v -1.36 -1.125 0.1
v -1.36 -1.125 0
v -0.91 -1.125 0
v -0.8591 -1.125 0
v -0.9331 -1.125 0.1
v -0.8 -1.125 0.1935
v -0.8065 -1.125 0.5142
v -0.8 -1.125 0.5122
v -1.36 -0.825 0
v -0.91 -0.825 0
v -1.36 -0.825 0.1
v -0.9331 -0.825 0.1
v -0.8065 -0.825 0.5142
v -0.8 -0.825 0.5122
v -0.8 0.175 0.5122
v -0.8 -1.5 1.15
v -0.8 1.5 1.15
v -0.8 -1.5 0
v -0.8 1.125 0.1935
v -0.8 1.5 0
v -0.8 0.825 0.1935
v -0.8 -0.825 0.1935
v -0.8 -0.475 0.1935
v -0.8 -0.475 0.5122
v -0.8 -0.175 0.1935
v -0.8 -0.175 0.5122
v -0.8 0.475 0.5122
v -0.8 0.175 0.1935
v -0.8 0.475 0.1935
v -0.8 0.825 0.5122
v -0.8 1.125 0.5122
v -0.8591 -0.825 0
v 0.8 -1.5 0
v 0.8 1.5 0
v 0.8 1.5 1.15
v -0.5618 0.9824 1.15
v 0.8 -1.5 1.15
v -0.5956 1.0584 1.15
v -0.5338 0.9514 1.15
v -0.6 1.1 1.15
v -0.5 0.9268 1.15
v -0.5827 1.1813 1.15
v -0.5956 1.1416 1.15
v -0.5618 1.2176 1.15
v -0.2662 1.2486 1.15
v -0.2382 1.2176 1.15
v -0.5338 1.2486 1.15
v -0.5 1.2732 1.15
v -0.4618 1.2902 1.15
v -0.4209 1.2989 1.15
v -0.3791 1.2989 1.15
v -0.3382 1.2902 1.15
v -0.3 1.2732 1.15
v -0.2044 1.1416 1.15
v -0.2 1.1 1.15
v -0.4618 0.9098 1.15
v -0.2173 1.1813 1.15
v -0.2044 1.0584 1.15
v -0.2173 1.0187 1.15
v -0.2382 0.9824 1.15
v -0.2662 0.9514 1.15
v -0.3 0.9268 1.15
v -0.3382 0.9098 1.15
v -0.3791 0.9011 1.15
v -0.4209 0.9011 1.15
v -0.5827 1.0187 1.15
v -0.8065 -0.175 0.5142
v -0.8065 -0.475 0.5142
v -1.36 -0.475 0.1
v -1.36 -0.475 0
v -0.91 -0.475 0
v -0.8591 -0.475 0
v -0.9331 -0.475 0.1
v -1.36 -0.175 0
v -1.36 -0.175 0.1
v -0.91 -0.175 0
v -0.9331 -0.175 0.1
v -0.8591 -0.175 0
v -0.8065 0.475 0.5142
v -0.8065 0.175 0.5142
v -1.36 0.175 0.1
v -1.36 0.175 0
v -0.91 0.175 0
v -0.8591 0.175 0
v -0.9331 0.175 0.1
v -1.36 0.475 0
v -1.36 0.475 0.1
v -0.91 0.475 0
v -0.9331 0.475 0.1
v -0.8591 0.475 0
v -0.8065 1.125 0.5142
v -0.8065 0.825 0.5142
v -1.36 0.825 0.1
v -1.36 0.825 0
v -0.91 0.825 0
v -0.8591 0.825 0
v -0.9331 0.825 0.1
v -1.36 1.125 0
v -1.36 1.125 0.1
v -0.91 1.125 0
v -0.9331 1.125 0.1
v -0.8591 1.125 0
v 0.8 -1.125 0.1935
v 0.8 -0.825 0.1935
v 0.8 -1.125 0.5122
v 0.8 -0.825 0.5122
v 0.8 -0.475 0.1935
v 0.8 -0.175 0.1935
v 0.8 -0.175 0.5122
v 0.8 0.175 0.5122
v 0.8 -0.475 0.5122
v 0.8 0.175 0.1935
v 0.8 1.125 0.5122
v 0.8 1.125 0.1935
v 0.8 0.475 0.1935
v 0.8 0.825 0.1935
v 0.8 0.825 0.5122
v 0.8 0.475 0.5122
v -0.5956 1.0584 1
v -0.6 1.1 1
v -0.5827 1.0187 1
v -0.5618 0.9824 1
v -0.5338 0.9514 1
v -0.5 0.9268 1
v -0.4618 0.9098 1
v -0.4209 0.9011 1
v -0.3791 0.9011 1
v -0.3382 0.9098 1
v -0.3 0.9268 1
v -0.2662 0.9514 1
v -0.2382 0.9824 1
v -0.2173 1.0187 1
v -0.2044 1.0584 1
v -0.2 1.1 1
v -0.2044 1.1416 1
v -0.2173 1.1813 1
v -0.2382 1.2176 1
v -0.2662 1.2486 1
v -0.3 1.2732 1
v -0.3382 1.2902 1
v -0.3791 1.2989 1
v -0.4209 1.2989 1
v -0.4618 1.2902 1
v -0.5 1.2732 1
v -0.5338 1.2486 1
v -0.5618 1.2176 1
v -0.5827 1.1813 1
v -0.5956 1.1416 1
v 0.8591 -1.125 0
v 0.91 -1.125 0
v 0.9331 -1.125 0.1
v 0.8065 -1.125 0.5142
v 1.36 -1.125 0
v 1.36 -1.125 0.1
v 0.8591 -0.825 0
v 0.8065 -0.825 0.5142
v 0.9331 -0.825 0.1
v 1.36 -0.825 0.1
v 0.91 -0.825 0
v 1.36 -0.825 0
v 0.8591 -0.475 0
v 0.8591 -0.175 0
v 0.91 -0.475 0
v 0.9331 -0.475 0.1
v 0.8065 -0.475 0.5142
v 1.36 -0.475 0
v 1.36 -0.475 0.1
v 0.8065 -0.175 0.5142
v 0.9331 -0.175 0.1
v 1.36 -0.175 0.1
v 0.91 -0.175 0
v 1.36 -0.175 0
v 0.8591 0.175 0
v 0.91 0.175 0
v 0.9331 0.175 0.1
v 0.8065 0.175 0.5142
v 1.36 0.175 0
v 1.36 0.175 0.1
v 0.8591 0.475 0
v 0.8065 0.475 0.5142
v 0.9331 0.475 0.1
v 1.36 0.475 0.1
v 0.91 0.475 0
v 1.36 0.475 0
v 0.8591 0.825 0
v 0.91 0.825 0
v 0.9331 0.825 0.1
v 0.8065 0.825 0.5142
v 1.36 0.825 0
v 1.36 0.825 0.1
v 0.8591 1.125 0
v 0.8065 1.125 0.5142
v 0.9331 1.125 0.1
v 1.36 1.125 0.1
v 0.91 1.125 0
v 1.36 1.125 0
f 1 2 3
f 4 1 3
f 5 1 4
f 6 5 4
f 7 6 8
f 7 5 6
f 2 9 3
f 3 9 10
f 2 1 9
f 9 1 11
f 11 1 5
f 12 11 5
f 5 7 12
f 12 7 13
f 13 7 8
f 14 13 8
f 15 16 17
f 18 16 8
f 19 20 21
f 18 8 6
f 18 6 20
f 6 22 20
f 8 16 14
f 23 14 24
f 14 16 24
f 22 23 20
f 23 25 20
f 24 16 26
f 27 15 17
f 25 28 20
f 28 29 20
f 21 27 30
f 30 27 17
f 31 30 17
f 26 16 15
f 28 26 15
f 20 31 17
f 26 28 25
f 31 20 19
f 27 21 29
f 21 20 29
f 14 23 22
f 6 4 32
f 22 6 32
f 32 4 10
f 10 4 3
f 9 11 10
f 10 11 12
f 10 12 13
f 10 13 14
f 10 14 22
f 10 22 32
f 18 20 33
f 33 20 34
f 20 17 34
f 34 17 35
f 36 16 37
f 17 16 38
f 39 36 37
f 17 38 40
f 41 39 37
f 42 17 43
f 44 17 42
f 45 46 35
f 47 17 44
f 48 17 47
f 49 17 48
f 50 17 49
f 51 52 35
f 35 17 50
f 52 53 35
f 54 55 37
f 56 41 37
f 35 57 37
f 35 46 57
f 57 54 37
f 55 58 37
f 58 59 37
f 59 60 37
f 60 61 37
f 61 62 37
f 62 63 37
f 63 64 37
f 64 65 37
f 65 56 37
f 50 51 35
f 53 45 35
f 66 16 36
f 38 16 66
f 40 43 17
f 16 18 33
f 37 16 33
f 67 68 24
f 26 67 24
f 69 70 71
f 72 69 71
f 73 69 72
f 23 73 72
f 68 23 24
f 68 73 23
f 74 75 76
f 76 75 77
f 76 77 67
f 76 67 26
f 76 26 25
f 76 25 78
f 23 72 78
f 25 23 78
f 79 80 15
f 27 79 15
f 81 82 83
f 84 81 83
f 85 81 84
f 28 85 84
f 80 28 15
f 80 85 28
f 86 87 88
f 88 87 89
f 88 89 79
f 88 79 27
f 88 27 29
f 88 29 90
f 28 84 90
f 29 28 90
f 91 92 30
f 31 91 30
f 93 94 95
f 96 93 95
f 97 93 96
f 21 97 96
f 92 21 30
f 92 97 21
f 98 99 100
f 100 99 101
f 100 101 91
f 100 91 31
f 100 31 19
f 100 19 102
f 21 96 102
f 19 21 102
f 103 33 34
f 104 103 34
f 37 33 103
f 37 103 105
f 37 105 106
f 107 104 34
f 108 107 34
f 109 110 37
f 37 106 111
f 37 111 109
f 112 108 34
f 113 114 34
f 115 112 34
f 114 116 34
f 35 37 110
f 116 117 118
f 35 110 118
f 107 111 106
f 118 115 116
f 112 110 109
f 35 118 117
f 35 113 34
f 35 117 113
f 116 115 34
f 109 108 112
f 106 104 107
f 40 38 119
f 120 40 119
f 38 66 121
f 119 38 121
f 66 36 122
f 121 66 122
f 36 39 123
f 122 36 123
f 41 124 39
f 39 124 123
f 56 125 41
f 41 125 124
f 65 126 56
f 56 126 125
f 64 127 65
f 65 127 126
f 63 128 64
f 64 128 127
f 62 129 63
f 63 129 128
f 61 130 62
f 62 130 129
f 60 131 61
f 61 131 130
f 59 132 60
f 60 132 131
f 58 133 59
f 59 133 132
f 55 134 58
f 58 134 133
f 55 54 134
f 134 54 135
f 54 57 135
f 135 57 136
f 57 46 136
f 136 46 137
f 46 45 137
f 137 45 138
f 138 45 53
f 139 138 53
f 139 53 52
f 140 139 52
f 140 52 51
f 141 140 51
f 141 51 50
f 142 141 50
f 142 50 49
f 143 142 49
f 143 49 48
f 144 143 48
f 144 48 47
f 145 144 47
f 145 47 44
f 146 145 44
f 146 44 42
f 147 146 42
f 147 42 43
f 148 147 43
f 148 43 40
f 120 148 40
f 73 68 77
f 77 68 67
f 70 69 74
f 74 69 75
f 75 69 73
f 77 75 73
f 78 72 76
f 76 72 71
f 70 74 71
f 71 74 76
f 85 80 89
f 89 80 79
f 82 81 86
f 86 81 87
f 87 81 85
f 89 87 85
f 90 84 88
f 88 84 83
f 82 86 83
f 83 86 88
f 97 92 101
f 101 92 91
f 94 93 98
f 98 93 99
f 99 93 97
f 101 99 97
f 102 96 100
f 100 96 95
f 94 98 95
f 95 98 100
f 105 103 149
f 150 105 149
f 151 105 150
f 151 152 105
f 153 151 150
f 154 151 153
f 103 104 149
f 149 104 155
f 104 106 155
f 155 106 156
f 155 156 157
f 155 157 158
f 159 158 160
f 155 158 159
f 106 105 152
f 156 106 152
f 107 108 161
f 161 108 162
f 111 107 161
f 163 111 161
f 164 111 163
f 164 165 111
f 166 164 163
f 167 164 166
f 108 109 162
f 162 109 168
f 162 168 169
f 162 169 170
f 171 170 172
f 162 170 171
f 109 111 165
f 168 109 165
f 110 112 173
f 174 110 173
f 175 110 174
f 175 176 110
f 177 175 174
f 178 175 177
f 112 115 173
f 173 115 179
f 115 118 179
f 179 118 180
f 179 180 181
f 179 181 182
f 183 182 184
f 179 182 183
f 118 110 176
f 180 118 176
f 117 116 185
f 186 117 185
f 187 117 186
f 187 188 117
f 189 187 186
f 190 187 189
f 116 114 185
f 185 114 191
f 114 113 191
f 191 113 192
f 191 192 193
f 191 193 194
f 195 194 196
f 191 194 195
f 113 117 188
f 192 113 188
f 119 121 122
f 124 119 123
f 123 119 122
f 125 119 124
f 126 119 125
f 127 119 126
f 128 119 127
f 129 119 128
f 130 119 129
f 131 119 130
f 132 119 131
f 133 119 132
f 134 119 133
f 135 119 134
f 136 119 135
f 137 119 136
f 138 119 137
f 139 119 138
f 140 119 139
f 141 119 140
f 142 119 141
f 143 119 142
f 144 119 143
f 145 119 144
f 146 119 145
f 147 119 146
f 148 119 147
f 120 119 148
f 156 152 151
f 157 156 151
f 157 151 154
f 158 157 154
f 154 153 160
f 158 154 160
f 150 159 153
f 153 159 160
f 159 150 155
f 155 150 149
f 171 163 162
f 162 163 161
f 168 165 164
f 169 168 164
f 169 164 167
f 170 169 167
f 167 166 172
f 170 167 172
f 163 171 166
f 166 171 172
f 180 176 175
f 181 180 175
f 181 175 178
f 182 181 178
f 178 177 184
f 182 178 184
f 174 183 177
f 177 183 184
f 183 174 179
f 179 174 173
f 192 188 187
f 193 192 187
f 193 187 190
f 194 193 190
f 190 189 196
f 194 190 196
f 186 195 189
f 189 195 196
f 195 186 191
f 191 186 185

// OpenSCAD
// All dimensions in mm
module pin() {
	translate(v = [.45/2+.15-.04,0,.1/2]) cube(size=[.45,.3,.1], center=true);
	difference() {
	translate(v=[.15/2-.04,0,.5/2]) rotate(a = 73, v= [0,1,0]) cube(size=[.522,.3,.1], center=true);
	
	translate(v=[0,0,-10]) cube(size = 20, center = true);
	}
}

module side_of_pins() {
	translate(v=[1.6/2,-1.95/2,0]){
	for(z=[0:3]) {
		translate(v=[0,z*.65,0]) pin();
	}
}
}

// Make main body
side_of_pins();
rotate(a=180, v=[0,0,1]) side_of_pins();
difference() {
translate(v=[0,0,1.15/2]) cube(size=[1.6,3.0,1.15],center=true);

translate(v = [-(1.6/2-.4),3.0/2 -.4, 6]) cylinder(r = .2, h = 10, center = true, $fs=.01);
}
